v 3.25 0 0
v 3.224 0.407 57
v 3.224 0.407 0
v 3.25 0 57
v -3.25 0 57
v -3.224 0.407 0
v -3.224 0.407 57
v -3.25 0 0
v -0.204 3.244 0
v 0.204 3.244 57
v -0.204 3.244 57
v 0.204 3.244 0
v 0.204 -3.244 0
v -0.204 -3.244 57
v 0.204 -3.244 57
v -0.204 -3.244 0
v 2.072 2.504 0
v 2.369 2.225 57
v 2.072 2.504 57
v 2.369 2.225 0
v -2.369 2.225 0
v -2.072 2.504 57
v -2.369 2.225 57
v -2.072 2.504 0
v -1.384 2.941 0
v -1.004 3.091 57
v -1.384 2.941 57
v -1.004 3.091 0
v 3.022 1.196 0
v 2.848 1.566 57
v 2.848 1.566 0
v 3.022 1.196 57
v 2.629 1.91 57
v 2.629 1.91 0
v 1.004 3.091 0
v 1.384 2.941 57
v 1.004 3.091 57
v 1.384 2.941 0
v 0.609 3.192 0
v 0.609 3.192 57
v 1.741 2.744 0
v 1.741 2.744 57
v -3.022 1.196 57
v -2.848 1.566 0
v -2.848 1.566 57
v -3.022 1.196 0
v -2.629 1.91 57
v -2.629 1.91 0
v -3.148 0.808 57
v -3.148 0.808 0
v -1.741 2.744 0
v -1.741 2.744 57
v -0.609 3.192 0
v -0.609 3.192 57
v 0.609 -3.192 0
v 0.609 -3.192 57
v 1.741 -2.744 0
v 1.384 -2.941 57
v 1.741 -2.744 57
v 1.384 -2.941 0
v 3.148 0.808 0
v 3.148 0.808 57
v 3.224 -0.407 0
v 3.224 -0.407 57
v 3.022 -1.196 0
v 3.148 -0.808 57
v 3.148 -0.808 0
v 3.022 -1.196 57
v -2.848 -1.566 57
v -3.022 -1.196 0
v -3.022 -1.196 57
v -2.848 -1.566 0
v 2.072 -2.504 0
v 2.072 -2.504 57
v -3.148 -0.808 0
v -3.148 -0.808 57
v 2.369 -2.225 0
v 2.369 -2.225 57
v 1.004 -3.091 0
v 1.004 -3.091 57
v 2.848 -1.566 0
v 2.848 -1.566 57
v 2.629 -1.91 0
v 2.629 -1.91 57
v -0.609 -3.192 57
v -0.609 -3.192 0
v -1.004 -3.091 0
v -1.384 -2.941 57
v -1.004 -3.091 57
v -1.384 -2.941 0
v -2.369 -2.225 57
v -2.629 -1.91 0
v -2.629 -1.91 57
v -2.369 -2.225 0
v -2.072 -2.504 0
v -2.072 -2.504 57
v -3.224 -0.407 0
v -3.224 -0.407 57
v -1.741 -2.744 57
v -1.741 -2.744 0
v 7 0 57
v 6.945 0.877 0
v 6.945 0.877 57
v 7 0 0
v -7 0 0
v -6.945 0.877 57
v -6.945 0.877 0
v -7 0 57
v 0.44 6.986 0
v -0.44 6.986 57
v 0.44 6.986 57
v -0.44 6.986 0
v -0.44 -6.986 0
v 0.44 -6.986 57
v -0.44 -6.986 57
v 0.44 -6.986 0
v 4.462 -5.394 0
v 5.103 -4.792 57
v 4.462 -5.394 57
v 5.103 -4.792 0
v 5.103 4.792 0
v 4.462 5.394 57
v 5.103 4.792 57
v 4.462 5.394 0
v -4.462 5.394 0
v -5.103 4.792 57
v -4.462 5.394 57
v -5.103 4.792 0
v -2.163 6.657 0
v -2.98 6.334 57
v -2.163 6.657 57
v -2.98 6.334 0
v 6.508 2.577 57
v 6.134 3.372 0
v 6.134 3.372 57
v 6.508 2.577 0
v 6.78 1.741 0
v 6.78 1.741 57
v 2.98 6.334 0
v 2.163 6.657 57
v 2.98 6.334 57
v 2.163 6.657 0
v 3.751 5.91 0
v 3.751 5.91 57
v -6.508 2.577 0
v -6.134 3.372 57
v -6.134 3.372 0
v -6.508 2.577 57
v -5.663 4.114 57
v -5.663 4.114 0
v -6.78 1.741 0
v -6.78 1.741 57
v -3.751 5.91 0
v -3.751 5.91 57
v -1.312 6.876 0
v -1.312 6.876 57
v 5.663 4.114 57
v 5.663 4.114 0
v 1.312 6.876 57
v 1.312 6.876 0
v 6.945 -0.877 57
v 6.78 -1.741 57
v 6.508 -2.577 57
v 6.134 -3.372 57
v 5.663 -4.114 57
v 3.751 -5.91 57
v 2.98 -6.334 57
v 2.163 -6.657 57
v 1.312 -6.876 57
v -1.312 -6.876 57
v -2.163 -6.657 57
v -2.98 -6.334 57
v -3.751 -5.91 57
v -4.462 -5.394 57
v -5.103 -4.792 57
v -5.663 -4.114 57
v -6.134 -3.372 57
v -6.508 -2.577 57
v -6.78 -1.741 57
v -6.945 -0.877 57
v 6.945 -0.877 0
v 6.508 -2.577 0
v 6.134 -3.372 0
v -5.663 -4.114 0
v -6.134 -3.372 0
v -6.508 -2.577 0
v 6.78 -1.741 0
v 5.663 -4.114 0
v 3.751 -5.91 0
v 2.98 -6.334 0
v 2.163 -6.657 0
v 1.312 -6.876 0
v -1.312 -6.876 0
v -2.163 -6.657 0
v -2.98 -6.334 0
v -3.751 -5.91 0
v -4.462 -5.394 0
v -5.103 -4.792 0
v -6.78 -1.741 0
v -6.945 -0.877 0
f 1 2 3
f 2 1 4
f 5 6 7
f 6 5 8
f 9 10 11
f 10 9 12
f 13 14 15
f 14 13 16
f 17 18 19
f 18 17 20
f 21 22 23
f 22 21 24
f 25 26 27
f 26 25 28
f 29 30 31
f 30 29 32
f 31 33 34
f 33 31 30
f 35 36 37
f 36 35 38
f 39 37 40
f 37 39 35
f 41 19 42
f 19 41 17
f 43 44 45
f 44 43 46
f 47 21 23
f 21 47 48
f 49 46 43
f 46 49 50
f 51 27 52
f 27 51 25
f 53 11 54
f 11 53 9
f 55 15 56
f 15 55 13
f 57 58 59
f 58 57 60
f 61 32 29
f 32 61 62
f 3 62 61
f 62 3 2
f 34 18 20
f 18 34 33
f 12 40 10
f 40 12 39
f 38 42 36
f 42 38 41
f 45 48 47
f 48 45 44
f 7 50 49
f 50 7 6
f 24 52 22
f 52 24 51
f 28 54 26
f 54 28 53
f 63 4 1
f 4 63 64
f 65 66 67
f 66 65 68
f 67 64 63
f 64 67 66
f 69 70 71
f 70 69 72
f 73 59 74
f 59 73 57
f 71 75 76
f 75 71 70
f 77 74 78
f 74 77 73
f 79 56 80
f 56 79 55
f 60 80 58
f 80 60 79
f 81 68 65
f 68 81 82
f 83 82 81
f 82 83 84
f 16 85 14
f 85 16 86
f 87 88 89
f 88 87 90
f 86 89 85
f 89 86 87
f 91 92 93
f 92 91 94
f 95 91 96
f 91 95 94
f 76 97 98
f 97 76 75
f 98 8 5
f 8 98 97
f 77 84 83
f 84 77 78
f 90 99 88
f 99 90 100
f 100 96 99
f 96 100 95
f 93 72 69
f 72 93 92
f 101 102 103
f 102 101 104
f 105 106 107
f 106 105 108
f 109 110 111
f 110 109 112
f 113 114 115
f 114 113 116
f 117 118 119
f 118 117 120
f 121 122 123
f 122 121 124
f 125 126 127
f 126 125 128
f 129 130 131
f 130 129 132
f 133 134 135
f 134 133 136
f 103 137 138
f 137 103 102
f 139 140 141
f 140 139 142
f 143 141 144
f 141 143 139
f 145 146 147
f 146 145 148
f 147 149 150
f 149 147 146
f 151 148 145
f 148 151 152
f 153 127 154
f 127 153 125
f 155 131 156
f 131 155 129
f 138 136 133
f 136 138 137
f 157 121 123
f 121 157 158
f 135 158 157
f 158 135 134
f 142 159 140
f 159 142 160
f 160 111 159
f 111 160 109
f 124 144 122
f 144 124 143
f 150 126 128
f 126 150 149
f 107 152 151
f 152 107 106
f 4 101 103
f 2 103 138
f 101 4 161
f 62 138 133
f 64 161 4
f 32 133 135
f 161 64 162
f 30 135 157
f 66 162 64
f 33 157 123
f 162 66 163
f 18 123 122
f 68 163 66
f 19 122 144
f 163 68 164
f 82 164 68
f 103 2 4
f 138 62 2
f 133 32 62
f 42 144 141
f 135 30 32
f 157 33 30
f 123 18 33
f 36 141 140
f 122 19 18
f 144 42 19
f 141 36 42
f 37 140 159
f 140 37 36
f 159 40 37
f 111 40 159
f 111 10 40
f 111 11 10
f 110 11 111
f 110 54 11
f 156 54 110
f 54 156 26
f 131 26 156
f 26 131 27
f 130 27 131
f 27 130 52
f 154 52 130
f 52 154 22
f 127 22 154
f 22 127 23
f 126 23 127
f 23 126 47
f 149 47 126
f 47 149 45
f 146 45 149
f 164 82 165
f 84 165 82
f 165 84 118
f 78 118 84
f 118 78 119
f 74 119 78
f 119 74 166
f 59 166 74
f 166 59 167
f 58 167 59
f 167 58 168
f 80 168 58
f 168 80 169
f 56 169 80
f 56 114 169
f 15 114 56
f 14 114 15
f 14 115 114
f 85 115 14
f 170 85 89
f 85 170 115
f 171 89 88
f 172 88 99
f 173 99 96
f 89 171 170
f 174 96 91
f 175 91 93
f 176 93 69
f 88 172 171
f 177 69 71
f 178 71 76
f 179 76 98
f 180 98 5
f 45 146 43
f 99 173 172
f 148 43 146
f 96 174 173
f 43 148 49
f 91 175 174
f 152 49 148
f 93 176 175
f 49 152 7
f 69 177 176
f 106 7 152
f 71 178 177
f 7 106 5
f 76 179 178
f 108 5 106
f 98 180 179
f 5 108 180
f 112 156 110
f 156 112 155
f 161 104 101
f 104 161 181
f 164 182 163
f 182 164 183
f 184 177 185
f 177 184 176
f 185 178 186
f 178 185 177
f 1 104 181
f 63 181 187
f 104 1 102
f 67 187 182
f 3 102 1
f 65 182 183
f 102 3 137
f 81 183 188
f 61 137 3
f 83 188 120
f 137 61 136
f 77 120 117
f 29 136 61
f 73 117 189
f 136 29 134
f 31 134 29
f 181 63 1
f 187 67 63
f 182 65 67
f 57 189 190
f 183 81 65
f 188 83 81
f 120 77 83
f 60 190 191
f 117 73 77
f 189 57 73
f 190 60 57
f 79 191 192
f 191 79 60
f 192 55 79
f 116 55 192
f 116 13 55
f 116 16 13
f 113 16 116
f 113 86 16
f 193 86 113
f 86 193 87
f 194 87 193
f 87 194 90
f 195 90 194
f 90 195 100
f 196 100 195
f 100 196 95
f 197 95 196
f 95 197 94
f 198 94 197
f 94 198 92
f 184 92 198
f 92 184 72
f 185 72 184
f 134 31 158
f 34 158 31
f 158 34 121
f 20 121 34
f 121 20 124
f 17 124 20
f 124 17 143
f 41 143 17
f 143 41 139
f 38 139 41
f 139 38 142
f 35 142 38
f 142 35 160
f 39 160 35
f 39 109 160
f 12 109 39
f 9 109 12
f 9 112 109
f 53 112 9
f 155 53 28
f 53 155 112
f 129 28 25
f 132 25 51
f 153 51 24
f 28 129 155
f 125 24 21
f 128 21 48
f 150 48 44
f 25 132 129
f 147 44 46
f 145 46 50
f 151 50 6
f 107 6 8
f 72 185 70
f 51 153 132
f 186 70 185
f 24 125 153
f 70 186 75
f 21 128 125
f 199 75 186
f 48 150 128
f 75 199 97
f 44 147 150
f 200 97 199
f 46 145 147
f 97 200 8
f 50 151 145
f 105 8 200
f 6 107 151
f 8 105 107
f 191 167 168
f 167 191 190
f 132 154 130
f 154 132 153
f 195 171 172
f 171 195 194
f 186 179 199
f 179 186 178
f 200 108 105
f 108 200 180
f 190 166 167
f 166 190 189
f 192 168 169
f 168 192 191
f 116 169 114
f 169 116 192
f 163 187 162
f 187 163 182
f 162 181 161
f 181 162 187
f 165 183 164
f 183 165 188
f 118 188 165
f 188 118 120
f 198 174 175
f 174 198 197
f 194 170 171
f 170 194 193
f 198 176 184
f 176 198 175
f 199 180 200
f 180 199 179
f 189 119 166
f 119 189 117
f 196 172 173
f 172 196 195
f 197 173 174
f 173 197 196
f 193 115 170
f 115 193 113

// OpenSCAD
$fn = 50;


difference() {
	union() {
		cylinder(h = 57, r = 7.0000000000);
	}
	union() {
		translate(v = [0, 0, -100]) {
			cylinder(h = 200, r = 3.2500000000);
		}
	}
}
